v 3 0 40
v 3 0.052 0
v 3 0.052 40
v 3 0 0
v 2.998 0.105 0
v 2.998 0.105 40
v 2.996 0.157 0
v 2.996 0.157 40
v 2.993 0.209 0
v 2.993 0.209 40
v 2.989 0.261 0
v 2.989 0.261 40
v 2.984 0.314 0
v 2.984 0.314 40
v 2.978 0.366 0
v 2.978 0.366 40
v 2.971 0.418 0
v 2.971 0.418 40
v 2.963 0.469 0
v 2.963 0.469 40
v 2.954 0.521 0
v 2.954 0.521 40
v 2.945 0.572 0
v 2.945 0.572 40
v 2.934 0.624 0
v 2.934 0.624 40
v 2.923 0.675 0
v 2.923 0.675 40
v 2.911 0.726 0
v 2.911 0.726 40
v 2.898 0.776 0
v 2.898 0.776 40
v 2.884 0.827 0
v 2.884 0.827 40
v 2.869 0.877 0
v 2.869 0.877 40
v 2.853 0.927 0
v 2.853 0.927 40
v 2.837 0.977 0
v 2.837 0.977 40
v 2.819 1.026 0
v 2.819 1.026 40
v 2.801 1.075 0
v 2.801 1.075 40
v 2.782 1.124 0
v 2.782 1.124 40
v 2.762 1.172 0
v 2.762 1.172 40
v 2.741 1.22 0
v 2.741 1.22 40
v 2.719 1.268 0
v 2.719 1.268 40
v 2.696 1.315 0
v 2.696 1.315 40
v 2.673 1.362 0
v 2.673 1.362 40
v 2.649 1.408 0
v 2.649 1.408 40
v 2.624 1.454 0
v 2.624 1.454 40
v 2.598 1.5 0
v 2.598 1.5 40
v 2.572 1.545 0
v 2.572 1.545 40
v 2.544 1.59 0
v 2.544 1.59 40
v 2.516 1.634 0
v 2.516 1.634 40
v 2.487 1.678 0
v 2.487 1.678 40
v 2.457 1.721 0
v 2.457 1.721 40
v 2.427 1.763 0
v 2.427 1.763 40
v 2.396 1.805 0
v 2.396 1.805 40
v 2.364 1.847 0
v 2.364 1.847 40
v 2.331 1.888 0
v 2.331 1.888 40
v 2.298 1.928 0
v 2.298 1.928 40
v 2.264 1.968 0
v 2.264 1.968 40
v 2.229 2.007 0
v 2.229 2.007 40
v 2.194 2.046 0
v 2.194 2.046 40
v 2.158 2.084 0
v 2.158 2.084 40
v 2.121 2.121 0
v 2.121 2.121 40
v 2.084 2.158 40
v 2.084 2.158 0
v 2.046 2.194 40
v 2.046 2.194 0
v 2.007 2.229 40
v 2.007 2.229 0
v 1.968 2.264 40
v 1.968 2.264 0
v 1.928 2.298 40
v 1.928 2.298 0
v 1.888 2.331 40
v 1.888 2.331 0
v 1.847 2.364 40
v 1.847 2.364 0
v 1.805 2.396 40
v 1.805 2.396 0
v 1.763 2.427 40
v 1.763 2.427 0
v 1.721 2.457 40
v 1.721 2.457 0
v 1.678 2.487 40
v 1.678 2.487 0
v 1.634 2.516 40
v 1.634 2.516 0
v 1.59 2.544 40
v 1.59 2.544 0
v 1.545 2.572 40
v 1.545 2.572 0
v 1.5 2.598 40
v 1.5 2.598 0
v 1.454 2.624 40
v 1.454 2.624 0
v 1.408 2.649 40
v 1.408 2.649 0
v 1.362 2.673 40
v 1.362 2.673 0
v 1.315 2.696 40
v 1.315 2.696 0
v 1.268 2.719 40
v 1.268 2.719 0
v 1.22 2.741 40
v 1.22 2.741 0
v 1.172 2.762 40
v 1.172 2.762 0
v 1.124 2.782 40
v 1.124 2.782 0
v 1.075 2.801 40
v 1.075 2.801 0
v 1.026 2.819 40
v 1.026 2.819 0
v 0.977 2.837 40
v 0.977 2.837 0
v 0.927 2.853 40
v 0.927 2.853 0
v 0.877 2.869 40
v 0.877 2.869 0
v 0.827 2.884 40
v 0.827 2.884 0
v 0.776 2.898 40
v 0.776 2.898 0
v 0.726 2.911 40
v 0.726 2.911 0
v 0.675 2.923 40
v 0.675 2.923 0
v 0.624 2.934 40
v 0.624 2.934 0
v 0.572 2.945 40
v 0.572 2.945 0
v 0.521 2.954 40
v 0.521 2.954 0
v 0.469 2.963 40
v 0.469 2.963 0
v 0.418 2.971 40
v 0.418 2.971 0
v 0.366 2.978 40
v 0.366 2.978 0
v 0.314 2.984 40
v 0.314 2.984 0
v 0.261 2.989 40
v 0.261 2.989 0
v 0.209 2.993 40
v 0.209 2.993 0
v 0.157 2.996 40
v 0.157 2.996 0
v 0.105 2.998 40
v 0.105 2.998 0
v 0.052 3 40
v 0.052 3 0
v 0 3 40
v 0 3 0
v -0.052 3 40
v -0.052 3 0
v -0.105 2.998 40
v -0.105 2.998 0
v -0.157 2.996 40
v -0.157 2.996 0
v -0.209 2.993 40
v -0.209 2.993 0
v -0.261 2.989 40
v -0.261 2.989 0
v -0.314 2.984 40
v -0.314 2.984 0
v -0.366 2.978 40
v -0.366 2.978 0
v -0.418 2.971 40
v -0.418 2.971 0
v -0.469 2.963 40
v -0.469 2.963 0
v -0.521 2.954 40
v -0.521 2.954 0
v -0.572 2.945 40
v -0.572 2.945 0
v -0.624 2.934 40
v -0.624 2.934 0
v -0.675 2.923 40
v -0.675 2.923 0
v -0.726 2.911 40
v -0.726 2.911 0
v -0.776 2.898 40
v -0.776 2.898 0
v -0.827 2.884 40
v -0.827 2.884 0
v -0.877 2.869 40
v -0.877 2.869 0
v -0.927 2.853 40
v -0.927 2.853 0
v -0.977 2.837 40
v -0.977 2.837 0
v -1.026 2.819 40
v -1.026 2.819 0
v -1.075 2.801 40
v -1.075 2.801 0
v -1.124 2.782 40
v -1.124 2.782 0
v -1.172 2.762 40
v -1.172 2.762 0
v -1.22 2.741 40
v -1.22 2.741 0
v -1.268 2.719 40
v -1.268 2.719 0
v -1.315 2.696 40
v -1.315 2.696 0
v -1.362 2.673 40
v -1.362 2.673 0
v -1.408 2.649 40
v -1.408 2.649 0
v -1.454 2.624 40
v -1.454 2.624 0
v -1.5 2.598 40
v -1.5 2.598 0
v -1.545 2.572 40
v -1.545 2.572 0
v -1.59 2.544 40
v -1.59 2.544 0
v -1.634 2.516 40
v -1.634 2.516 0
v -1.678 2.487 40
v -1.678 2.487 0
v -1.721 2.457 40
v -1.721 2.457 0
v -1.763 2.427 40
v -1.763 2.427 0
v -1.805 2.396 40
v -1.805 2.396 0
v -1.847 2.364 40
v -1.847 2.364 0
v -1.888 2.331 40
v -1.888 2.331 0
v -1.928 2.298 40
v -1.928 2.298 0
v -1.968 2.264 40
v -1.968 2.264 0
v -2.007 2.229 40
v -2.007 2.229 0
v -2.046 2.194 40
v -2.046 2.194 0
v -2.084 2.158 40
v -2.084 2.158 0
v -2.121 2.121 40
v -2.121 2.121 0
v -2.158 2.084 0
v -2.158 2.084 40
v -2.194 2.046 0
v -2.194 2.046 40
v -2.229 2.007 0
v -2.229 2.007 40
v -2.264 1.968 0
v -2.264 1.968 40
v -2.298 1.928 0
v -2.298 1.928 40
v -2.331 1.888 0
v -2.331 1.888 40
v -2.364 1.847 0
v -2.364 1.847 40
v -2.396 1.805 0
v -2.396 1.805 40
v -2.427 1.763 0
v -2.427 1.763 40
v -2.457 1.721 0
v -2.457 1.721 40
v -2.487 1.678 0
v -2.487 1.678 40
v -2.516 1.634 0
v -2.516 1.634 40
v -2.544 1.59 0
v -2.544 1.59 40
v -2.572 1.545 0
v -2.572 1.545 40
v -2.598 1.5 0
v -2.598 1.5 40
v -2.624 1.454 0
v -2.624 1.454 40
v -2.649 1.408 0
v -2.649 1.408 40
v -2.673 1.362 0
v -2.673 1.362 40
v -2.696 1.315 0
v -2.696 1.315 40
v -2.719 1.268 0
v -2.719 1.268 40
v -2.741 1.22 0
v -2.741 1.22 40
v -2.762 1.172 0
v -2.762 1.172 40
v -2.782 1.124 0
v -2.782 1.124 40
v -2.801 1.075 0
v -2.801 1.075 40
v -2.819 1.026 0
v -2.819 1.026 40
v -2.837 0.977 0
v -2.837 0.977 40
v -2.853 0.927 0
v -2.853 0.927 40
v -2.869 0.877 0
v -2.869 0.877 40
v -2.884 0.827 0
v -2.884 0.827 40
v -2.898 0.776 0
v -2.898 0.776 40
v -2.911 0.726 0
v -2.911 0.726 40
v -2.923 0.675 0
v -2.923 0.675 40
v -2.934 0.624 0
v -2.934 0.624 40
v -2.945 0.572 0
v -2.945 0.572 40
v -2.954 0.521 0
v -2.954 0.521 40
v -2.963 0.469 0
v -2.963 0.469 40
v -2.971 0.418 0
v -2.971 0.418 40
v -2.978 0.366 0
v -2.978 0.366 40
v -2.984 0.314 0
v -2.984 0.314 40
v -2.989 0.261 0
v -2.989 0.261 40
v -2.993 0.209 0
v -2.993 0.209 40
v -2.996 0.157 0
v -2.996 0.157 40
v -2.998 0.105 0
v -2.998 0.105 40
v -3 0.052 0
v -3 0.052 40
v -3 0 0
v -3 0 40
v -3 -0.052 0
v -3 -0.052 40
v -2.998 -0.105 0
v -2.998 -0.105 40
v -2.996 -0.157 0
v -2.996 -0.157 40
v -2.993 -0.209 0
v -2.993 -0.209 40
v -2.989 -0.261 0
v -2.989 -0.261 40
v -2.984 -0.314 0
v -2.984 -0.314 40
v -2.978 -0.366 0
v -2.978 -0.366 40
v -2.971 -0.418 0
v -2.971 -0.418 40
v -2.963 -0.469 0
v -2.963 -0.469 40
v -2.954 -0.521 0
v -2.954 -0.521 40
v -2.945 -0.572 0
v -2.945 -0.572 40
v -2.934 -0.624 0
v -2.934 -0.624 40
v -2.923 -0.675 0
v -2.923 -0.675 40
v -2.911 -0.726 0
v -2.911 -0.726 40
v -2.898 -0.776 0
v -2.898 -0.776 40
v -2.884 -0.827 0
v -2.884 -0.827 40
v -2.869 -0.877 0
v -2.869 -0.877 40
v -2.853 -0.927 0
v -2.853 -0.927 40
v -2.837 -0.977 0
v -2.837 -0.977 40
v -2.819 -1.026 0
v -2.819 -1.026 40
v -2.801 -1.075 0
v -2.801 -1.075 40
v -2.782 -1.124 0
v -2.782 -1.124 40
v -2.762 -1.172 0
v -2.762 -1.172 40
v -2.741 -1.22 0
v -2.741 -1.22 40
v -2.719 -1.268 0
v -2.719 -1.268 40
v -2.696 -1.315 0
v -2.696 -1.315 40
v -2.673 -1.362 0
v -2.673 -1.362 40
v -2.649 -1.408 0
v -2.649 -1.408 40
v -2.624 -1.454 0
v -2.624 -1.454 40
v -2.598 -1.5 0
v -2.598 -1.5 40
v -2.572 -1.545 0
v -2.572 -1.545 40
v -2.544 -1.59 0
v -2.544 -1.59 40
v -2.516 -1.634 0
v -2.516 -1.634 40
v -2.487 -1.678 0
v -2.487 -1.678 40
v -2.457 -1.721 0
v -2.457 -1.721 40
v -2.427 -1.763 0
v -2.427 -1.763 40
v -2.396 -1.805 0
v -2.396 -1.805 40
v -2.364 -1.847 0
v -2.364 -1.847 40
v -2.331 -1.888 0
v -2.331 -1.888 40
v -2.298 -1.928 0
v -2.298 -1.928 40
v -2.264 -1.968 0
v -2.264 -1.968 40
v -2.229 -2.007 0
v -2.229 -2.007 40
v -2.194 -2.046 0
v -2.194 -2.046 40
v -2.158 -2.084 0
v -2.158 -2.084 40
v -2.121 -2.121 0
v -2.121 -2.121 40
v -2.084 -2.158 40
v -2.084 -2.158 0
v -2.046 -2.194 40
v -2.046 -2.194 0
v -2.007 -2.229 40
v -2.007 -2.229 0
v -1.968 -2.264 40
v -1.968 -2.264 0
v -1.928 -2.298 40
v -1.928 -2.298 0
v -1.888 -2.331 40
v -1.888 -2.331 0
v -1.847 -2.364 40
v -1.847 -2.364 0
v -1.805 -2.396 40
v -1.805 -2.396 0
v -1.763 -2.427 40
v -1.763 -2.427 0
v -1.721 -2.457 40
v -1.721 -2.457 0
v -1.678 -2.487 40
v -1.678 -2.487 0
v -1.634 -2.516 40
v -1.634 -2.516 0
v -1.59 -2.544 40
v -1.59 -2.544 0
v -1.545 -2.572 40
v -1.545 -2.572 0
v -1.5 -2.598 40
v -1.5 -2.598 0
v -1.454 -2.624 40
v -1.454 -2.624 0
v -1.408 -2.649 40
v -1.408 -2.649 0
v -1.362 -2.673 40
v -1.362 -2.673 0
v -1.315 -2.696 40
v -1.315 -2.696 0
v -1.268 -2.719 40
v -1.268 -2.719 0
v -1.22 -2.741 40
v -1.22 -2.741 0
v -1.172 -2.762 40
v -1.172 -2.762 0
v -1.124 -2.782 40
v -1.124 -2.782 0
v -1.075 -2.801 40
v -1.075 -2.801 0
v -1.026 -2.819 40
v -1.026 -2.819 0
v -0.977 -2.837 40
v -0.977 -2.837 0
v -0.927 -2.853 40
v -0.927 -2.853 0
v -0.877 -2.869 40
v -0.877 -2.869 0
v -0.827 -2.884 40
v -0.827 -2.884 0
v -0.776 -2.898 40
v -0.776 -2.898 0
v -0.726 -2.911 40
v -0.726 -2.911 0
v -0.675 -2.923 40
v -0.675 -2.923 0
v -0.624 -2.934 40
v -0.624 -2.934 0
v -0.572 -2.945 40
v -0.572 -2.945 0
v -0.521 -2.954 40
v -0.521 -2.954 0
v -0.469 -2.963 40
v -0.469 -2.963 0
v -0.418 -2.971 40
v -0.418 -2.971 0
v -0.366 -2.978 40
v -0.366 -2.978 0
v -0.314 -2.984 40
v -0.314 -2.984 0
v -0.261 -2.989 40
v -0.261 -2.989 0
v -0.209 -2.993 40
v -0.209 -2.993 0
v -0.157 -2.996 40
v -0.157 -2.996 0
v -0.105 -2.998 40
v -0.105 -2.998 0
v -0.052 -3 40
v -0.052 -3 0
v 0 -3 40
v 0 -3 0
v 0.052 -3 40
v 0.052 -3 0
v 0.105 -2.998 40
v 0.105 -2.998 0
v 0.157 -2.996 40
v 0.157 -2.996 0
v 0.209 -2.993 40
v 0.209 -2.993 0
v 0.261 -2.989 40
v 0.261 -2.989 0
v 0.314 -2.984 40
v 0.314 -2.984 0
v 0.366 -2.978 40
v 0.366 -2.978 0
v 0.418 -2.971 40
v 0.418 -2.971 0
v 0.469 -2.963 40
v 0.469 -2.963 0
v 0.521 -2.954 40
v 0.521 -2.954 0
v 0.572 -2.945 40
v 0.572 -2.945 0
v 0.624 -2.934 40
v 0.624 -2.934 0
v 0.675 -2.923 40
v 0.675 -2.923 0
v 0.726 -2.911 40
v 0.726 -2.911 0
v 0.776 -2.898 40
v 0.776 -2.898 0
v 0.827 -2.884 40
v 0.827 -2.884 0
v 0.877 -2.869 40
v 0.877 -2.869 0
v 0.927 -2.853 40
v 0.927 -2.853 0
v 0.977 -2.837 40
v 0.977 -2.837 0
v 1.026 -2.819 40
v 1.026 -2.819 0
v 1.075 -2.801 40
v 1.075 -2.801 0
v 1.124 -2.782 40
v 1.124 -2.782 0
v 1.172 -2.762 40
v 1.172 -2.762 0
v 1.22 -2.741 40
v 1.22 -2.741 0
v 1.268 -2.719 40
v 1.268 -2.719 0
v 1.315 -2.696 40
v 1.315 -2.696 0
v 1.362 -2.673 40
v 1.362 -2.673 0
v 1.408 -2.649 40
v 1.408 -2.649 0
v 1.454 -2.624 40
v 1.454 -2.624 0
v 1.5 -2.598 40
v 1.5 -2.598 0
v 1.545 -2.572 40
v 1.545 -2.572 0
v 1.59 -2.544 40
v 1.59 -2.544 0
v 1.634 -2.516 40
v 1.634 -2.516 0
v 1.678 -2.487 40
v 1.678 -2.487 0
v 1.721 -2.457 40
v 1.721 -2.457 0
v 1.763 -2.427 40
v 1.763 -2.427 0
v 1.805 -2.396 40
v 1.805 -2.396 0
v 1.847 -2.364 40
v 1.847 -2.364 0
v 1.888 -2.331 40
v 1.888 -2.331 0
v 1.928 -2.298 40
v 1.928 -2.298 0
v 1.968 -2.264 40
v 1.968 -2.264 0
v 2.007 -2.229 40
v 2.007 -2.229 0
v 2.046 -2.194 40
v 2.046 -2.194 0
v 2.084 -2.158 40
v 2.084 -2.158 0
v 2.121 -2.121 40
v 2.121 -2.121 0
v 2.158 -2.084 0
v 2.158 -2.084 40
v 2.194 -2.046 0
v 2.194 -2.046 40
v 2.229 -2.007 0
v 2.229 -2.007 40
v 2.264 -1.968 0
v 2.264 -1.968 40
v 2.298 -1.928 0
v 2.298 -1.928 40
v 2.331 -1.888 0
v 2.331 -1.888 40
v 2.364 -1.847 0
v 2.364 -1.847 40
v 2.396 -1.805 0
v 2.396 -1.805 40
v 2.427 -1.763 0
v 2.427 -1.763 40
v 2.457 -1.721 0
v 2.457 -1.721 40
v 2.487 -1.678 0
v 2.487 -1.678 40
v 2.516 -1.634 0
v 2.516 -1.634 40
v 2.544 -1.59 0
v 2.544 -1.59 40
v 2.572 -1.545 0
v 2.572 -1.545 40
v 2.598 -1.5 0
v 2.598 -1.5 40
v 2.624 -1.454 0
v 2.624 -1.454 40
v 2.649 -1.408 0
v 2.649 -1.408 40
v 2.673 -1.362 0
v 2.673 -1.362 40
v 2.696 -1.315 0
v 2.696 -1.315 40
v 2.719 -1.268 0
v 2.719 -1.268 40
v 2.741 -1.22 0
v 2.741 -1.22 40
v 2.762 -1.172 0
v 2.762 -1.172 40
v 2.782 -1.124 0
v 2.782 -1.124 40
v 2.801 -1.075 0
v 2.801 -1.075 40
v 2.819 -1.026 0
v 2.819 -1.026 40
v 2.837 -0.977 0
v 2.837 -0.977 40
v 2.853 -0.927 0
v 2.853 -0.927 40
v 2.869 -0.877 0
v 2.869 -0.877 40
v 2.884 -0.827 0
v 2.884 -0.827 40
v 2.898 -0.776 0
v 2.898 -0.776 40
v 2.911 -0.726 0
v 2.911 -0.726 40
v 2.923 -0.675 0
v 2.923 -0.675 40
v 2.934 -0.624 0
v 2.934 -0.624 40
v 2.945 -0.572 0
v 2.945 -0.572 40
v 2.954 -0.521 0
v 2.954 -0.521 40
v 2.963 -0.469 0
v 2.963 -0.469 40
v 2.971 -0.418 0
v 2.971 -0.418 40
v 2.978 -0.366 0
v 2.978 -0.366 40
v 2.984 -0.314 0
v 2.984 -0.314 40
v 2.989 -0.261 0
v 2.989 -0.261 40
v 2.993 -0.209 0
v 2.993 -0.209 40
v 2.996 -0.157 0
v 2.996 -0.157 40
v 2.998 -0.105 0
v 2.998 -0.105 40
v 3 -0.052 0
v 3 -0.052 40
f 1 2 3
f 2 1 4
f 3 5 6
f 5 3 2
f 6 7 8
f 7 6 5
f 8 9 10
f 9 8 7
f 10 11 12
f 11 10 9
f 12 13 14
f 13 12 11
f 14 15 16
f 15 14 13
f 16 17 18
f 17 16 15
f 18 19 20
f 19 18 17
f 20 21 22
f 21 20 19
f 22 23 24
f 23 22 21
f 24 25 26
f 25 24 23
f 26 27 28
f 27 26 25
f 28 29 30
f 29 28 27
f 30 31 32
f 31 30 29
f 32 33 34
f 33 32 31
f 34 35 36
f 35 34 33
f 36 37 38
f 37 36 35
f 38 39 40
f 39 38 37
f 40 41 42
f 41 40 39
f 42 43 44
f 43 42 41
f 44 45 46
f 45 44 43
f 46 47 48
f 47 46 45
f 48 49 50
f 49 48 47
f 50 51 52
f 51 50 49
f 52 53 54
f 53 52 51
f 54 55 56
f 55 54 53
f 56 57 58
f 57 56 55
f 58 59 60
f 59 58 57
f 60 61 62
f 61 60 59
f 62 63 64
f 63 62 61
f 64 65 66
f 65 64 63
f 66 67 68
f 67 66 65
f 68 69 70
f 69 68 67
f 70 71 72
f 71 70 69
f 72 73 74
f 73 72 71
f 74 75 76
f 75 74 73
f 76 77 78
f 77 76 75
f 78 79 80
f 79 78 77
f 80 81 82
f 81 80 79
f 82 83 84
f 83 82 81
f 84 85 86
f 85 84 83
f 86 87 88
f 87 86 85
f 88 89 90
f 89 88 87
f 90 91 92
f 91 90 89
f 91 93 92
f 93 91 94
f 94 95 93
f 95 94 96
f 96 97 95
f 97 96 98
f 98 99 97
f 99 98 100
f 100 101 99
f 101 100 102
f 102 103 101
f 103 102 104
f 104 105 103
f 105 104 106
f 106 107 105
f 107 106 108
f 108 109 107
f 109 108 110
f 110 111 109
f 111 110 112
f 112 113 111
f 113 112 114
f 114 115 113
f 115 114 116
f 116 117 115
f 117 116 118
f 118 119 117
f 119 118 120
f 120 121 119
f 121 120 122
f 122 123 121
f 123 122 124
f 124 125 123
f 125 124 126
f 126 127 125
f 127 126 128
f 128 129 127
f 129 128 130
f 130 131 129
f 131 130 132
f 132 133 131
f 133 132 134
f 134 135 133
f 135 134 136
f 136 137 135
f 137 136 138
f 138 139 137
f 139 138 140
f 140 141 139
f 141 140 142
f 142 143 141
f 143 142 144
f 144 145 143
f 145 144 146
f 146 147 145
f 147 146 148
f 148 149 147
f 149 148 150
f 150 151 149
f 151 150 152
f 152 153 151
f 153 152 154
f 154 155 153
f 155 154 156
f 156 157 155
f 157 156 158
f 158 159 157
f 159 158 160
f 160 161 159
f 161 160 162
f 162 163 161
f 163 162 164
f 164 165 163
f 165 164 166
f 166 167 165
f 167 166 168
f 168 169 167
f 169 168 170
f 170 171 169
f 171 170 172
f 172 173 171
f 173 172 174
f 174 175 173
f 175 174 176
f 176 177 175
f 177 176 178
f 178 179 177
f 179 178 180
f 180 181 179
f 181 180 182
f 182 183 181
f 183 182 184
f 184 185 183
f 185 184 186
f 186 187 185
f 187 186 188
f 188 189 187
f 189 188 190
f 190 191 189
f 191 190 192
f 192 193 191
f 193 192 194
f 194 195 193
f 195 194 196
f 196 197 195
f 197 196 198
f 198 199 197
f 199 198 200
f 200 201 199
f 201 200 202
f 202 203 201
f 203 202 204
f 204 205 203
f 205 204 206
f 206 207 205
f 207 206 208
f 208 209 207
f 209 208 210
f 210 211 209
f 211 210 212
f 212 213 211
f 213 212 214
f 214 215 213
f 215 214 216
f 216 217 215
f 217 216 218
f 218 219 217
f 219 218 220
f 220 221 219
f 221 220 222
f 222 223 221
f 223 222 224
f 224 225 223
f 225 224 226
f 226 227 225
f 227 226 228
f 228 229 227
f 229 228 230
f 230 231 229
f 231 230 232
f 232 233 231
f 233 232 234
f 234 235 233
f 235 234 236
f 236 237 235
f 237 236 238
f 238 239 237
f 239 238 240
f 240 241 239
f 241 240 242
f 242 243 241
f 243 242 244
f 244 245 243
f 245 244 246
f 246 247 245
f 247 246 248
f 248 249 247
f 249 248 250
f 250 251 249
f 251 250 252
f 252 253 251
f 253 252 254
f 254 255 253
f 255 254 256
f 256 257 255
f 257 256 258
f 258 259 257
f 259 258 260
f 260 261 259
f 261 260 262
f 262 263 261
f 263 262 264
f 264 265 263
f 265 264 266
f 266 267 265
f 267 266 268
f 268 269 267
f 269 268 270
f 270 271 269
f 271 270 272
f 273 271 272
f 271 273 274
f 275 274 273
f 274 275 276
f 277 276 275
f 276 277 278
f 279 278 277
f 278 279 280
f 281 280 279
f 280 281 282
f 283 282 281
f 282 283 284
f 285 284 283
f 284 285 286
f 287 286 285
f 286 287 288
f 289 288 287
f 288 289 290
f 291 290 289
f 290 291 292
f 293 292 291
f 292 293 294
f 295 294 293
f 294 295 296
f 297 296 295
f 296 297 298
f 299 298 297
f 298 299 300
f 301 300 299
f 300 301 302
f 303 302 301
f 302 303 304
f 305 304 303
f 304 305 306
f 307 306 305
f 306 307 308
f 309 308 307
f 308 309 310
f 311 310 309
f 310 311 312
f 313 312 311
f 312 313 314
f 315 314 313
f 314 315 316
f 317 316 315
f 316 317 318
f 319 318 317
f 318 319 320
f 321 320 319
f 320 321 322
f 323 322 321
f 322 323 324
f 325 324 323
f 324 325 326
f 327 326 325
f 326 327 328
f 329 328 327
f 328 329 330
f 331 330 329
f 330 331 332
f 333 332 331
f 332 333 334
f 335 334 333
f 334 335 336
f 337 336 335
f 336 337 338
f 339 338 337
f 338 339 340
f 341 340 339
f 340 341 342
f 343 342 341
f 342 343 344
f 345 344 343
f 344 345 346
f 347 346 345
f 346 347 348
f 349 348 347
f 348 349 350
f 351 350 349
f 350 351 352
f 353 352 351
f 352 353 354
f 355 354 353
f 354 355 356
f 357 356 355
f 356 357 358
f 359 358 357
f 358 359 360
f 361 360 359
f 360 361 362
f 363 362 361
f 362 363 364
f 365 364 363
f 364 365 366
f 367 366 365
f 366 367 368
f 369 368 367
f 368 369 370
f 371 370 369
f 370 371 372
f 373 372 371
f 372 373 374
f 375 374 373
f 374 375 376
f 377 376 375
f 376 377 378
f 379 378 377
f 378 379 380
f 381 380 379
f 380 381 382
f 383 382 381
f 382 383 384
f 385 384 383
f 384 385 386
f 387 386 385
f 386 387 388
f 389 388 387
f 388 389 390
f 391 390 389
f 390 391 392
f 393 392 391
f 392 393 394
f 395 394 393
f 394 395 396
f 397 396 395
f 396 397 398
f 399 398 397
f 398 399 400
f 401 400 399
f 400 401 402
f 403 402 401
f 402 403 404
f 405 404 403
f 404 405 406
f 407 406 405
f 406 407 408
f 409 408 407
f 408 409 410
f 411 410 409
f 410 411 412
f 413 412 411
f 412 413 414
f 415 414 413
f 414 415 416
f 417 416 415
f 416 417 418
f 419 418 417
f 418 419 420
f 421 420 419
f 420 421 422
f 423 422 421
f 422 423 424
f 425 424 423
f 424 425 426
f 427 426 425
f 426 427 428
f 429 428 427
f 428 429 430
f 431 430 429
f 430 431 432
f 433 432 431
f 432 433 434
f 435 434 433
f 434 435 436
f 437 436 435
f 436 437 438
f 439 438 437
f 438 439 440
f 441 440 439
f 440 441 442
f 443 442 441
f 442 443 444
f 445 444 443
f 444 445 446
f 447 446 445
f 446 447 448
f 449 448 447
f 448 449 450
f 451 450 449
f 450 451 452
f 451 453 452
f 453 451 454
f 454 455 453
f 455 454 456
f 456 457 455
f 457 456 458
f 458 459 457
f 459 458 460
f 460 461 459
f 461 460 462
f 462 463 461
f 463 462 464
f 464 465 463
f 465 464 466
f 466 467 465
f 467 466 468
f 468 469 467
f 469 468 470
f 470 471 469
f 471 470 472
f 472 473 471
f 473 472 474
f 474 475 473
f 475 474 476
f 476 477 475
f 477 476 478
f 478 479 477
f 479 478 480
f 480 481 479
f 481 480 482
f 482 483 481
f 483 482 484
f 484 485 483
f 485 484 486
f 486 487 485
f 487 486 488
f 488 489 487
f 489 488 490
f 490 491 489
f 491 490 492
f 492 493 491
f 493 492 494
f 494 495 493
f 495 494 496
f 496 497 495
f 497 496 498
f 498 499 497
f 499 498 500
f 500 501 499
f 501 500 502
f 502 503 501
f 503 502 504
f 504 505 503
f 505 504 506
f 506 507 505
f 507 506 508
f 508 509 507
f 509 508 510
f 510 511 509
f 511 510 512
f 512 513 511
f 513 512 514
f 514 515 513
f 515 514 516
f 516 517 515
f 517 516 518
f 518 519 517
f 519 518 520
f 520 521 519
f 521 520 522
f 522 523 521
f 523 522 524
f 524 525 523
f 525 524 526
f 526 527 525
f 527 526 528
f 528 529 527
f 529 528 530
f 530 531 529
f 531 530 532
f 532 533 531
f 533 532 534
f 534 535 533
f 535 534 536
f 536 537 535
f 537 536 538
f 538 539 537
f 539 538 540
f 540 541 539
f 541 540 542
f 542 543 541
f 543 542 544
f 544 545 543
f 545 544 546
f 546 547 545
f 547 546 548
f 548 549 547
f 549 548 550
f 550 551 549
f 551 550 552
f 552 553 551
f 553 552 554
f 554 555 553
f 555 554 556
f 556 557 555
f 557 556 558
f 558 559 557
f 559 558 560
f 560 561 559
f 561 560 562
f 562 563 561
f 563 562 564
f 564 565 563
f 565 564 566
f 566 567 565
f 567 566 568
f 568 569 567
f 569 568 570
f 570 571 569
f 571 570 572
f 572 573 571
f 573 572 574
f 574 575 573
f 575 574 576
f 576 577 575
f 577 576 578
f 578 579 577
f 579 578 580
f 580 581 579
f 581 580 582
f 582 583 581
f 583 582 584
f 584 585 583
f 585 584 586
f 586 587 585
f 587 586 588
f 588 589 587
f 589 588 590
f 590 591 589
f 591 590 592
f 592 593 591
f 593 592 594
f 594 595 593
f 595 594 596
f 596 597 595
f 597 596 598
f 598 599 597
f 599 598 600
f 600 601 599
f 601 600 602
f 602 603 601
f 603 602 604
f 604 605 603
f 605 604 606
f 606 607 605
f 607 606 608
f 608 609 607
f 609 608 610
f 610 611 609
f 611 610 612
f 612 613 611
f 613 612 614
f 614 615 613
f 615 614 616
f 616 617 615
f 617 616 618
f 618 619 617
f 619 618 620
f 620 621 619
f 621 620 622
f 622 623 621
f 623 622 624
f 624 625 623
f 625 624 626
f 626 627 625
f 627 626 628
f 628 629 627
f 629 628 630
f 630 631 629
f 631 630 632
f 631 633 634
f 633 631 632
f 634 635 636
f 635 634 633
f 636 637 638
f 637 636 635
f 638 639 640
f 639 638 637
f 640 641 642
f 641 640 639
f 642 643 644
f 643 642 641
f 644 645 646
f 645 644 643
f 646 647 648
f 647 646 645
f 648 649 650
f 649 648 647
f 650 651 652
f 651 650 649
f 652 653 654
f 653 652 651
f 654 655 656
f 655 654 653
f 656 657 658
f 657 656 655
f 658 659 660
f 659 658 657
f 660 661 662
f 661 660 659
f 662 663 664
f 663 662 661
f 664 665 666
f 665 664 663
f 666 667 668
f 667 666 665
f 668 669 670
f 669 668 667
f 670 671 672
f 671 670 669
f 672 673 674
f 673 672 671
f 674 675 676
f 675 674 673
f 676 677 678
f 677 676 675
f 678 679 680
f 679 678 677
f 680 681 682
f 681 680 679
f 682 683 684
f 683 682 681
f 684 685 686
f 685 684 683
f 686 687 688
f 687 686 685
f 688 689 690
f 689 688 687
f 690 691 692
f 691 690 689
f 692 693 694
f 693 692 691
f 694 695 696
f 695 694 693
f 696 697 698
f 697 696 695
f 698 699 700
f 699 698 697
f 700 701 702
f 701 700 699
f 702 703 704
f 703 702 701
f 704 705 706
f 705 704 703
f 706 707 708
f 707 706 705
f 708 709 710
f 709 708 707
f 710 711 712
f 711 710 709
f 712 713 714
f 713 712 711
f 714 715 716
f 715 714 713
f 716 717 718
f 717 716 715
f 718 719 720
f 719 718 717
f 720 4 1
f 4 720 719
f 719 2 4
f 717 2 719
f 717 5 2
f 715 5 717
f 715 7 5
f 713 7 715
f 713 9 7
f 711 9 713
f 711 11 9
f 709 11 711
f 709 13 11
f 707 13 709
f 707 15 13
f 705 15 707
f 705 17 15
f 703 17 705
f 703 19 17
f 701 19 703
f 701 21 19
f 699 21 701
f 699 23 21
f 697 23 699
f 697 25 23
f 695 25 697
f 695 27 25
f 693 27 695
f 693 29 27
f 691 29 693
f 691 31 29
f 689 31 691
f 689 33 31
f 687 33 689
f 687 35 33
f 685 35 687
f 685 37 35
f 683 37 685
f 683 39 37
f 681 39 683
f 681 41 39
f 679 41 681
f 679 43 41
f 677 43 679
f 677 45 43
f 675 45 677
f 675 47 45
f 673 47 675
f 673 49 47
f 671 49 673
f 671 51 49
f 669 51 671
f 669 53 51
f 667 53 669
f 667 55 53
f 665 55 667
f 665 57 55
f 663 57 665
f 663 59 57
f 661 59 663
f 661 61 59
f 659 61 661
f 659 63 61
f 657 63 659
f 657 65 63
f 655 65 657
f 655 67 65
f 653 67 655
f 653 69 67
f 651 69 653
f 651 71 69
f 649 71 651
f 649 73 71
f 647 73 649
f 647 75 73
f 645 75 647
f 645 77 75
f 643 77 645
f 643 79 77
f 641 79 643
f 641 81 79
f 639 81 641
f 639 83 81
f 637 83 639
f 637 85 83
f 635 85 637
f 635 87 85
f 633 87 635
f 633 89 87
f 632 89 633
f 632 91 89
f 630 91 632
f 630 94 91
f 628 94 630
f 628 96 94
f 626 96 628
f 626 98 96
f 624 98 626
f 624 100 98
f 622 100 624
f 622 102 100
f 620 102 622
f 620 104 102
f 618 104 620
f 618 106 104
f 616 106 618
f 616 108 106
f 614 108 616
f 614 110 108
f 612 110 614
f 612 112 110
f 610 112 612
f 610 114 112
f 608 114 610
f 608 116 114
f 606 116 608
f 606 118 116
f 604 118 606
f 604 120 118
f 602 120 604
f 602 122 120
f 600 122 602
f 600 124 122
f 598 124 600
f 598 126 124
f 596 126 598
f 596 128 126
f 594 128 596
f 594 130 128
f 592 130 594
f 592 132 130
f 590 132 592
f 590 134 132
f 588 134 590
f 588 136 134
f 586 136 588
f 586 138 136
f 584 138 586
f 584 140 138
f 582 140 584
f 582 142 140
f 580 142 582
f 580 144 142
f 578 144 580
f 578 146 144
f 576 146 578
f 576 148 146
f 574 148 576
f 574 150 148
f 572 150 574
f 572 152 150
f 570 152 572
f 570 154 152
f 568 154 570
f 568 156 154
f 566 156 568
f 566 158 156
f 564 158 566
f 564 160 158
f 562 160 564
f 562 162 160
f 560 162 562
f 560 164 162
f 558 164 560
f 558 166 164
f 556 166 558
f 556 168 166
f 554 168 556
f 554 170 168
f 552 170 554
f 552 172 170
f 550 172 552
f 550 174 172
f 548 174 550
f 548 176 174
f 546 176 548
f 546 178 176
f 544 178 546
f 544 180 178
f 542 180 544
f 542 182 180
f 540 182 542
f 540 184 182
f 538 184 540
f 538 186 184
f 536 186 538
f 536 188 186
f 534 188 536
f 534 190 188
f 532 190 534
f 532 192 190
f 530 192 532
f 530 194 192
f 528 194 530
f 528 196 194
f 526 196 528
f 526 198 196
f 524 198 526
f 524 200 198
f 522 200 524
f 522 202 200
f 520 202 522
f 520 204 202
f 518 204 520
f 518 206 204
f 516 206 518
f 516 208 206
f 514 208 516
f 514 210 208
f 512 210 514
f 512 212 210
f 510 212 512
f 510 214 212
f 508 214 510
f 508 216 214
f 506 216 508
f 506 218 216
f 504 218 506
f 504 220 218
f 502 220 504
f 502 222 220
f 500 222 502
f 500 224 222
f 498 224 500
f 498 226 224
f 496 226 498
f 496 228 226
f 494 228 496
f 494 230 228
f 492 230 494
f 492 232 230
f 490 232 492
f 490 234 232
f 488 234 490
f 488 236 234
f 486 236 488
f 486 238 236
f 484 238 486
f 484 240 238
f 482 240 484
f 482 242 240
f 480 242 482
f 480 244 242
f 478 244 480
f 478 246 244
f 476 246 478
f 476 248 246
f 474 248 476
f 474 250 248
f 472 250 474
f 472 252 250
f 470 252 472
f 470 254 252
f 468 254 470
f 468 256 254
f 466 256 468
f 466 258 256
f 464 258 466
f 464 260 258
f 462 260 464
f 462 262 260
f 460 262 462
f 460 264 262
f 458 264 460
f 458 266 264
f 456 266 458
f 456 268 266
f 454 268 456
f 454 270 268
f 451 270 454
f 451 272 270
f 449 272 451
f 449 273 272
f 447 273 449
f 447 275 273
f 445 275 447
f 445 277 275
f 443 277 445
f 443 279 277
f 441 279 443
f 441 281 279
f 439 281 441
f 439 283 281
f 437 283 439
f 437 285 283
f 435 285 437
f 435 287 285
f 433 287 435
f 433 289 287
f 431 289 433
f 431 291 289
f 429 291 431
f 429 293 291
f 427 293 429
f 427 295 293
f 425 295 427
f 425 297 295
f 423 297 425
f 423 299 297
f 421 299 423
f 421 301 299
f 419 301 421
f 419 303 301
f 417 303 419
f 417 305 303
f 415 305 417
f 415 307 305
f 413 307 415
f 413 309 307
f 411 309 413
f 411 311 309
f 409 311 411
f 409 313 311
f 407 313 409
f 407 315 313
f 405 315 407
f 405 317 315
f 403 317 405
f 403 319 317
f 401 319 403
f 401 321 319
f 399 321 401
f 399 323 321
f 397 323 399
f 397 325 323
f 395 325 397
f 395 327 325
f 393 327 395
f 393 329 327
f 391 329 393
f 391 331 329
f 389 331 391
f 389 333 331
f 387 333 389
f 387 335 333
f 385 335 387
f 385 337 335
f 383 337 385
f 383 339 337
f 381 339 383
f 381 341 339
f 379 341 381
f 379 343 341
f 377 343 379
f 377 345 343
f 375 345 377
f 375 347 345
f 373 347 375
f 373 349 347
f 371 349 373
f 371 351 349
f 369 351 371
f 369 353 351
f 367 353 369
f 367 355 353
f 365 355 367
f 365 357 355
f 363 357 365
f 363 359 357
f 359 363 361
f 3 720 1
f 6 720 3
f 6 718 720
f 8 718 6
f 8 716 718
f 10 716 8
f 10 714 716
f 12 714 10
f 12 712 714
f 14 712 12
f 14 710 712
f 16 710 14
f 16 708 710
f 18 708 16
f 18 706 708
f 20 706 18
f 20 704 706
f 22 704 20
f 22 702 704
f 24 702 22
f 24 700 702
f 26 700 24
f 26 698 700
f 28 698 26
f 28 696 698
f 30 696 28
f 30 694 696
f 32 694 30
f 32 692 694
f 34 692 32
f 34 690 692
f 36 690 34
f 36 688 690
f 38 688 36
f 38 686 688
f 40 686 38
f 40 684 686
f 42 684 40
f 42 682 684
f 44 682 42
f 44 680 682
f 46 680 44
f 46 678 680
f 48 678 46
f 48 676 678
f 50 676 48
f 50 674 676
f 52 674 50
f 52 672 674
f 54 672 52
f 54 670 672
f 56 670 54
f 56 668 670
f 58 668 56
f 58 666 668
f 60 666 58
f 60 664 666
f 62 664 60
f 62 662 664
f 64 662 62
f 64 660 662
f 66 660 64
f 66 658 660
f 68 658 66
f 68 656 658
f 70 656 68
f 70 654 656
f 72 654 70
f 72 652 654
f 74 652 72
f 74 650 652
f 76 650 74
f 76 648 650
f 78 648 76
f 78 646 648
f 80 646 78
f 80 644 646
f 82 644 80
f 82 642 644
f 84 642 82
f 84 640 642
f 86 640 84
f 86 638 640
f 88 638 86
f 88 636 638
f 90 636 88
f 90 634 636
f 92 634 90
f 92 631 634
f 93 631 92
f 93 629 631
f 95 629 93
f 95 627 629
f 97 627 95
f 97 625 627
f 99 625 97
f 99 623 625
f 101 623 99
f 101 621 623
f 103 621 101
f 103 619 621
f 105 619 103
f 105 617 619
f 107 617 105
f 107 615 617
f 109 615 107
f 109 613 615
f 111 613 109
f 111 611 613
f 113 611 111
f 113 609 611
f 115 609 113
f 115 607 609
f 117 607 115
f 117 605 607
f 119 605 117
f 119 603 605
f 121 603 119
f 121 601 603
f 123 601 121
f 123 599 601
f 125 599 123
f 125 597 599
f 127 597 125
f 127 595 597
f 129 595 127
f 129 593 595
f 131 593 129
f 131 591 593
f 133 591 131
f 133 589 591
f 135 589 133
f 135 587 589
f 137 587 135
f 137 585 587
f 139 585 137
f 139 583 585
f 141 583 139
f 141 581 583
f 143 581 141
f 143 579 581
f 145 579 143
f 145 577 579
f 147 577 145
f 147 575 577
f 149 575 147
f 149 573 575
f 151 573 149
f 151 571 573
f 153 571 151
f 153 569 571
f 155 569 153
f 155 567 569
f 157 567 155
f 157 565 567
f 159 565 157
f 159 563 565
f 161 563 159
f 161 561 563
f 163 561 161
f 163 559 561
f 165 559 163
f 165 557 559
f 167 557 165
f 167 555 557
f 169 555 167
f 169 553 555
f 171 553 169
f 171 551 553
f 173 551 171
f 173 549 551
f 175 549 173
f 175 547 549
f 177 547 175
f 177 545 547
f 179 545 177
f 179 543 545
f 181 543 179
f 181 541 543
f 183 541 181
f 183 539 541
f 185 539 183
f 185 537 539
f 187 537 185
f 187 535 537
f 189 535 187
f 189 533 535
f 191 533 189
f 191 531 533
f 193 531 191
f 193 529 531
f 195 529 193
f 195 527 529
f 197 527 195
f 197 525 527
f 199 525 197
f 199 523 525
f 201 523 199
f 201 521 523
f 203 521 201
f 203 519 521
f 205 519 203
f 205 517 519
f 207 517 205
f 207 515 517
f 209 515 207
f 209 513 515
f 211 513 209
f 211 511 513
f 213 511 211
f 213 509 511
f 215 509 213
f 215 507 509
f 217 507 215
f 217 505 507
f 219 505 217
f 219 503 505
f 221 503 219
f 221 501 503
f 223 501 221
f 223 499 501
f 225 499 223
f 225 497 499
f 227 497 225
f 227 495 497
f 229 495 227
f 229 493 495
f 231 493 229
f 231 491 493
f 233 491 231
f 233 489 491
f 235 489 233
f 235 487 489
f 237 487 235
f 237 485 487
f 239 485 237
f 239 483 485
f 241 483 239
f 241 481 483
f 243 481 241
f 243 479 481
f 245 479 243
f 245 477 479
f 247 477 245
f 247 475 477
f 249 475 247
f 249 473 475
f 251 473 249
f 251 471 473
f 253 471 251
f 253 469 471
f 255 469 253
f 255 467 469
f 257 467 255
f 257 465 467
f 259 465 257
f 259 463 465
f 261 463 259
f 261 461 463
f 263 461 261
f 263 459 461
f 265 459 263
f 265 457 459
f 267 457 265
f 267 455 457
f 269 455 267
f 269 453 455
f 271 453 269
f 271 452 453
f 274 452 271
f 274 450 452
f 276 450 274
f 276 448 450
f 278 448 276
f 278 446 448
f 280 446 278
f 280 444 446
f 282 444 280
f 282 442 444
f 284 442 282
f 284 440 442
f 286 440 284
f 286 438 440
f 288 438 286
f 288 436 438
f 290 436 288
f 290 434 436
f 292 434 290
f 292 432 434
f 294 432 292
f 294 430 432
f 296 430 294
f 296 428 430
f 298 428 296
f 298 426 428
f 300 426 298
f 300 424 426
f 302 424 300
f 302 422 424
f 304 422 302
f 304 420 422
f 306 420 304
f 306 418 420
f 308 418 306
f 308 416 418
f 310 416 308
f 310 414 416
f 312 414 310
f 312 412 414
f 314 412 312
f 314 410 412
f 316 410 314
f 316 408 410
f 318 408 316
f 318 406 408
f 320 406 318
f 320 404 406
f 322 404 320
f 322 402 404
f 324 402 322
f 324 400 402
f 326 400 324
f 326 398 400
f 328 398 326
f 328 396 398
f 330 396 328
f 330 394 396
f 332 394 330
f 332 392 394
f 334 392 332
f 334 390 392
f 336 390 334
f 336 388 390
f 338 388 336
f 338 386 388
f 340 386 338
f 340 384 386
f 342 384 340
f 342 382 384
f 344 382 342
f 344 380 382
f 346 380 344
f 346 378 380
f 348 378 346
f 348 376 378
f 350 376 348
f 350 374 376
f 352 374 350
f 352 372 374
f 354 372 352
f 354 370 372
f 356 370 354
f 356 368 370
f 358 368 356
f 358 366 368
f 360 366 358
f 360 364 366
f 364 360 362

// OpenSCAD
$fn=360;

module ivarPin(d=6, h=40) {
    cylinder(h=h, d=d);
}

module ilt(tw=50, tel=550, th=450, bel=50){
    bh=th-tw;bd=tel-bel;
    translate([0,0,bh])cube([tel,tel,tw]);
    for(x=[0,bd])for(y=[0,bd])translate([x,y,0])cube([bel,bel,bh]);
}

rotate([0,0,0]) ivarPin();
//color("grey")ilt();
